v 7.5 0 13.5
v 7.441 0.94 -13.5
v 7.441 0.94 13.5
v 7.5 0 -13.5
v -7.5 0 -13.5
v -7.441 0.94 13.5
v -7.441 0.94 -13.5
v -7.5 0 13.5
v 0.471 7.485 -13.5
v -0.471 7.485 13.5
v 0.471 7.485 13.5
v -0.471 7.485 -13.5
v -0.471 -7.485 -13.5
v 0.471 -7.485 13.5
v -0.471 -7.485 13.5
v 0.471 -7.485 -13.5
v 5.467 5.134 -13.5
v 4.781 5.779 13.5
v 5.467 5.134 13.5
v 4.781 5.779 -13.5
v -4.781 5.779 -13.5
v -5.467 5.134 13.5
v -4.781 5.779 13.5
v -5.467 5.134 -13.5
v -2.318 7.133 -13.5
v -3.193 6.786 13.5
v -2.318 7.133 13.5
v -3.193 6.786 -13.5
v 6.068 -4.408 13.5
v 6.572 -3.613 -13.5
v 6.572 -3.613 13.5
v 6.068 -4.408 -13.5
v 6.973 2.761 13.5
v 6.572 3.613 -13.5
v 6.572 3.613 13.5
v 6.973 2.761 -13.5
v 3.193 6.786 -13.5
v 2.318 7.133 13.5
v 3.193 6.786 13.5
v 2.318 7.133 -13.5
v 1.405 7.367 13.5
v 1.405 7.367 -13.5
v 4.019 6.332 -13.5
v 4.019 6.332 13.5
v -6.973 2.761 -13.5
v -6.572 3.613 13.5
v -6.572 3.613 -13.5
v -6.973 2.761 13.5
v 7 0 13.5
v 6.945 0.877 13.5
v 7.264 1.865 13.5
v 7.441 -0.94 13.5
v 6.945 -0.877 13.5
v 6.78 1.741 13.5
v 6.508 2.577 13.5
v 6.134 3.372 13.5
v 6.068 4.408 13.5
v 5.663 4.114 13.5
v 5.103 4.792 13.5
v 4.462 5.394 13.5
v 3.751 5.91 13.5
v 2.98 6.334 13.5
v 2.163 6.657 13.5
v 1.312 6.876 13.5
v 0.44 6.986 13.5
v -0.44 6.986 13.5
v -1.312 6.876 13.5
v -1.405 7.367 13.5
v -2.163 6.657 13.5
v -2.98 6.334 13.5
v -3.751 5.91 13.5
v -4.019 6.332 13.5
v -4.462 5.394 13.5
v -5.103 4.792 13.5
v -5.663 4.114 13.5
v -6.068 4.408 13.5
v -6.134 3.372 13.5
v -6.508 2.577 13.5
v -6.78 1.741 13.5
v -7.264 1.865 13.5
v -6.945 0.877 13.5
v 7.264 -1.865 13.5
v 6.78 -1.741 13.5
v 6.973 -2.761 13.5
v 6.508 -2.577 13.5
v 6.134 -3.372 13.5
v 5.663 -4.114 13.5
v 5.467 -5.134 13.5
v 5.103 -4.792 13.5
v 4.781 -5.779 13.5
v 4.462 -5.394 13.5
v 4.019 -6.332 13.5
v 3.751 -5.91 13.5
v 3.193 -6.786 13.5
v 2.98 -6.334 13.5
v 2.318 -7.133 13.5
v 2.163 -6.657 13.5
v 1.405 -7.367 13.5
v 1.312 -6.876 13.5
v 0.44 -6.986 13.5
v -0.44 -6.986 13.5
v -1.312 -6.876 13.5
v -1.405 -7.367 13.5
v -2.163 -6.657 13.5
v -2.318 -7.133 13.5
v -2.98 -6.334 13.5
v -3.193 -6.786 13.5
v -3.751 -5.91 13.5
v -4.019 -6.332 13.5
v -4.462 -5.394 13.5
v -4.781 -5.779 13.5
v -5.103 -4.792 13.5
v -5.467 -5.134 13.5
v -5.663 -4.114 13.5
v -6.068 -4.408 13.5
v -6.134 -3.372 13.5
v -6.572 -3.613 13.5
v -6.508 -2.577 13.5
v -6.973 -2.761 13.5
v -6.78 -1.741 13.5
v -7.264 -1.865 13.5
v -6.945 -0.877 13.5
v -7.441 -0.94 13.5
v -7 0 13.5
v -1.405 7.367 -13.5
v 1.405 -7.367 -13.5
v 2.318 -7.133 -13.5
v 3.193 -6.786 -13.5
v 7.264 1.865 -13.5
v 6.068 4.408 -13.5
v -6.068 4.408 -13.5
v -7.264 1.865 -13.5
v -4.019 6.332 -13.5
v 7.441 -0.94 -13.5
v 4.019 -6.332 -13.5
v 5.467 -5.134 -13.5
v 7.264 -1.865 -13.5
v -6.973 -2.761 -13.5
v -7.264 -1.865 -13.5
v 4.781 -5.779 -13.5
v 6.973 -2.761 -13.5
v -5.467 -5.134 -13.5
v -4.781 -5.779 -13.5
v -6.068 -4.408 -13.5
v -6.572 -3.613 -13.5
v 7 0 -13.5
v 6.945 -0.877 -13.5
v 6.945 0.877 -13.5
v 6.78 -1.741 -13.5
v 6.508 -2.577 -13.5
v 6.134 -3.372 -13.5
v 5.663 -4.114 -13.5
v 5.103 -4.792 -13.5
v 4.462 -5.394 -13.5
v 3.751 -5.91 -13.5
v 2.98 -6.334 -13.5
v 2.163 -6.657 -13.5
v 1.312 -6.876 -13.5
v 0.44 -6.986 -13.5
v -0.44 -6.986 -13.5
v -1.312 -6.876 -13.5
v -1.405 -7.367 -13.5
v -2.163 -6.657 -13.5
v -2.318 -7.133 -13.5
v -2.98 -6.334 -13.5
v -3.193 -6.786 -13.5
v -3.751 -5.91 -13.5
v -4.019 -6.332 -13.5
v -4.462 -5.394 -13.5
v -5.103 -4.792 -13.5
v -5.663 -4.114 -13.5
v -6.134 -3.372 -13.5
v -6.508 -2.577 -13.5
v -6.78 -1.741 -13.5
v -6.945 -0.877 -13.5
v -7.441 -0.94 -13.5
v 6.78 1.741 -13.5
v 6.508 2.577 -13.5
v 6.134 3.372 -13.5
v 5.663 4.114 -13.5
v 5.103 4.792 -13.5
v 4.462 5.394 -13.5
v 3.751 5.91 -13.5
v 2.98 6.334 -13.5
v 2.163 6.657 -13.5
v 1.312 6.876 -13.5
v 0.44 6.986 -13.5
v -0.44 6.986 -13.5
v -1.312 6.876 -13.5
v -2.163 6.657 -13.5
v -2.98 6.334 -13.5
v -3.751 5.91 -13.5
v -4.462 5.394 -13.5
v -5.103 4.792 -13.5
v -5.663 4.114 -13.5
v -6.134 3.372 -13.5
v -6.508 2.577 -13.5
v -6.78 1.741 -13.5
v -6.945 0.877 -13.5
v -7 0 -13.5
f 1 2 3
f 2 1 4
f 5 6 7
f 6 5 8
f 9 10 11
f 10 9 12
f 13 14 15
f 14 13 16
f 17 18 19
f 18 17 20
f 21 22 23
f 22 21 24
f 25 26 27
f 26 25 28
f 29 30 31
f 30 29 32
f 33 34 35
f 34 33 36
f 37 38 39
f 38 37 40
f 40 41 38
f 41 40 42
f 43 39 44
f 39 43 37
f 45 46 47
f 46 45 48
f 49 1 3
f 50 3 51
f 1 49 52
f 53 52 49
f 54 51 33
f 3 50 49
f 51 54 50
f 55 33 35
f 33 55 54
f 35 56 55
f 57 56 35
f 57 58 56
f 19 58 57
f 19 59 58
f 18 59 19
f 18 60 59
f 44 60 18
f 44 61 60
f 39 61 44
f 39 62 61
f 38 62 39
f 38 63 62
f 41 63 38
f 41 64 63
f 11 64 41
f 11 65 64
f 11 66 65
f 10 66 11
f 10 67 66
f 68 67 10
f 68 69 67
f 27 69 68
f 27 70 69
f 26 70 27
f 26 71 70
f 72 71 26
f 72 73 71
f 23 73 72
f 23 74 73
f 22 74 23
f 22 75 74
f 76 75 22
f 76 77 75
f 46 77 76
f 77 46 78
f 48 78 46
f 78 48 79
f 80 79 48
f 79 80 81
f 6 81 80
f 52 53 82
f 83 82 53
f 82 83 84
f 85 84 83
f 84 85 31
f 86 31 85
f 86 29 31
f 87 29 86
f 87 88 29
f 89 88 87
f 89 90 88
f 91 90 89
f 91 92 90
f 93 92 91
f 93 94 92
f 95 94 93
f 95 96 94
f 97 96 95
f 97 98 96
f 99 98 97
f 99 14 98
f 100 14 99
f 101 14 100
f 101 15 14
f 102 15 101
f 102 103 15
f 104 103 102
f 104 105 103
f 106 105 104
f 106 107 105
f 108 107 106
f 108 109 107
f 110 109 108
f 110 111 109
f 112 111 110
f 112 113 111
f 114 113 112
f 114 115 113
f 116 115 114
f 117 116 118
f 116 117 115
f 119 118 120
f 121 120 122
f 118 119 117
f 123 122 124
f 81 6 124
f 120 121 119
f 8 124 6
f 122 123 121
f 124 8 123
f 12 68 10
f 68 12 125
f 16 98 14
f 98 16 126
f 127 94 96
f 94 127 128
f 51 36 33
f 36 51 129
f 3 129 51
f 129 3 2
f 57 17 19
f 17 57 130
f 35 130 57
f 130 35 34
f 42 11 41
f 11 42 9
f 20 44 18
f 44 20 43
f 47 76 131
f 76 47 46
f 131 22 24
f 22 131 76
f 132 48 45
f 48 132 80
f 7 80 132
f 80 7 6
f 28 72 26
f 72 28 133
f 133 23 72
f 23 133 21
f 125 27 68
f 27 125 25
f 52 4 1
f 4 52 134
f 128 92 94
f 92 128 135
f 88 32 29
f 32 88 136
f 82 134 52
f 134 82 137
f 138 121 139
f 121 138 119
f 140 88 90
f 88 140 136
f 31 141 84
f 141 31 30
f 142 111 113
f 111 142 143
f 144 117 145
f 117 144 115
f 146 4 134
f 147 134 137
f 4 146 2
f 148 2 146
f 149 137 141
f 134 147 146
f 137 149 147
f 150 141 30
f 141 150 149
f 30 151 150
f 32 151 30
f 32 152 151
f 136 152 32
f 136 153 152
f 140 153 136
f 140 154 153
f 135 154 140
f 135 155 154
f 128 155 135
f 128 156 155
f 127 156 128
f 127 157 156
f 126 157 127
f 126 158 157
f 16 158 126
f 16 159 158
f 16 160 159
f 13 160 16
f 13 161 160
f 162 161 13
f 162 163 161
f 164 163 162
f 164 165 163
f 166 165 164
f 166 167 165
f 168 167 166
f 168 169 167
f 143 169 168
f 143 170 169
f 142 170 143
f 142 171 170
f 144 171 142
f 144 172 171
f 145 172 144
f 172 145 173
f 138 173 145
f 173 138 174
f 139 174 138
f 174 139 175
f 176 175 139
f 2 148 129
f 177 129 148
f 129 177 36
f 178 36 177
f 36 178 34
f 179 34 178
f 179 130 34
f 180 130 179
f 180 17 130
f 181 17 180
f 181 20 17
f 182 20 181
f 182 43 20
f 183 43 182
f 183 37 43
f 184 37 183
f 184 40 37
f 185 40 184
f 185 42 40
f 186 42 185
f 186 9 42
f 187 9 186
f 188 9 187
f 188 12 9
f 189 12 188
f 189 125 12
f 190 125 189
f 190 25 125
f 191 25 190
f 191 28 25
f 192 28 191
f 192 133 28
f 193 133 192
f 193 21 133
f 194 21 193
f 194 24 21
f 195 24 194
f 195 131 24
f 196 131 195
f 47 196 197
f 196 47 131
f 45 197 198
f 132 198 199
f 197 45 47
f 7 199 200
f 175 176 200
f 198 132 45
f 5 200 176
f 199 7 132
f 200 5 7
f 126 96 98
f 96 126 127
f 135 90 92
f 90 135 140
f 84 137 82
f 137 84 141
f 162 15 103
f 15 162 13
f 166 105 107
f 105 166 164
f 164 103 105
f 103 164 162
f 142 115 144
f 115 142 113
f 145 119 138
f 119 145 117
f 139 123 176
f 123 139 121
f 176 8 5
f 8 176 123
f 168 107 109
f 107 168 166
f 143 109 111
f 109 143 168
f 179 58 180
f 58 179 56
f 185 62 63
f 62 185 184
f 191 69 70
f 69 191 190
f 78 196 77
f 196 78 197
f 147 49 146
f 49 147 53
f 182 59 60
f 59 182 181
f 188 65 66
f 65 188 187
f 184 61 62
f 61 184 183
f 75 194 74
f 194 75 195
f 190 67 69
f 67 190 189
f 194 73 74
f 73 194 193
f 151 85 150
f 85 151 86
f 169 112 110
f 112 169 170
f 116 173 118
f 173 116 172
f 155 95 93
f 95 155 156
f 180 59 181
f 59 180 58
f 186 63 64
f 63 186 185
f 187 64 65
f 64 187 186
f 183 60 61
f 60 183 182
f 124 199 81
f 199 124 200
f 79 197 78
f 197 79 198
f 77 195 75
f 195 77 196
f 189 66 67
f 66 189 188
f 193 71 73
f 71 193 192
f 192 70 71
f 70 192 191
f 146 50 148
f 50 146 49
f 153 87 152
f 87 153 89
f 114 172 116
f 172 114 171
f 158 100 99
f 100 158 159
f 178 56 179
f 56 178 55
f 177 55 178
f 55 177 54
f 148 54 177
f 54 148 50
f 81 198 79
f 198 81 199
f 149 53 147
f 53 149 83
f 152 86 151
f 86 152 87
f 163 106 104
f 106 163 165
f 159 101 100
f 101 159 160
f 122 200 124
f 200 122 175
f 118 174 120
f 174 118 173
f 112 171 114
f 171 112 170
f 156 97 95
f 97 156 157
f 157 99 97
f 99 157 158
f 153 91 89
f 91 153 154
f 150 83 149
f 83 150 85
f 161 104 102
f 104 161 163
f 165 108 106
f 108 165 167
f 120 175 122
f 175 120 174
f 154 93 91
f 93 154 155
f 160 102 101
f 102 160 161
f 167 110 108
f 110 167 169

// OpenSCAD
$fn = 50;


difference() {
	union() {
		translate(v = [0, 0, -13.5000000000]) {
			cylinder(h = 27, r = 7.5000000000);
		}
	}
	union() {
		translate(v = [0, 0, -100.0000000000]) {
			cylinder(h = 200, r = 7);
		}
	}
}
